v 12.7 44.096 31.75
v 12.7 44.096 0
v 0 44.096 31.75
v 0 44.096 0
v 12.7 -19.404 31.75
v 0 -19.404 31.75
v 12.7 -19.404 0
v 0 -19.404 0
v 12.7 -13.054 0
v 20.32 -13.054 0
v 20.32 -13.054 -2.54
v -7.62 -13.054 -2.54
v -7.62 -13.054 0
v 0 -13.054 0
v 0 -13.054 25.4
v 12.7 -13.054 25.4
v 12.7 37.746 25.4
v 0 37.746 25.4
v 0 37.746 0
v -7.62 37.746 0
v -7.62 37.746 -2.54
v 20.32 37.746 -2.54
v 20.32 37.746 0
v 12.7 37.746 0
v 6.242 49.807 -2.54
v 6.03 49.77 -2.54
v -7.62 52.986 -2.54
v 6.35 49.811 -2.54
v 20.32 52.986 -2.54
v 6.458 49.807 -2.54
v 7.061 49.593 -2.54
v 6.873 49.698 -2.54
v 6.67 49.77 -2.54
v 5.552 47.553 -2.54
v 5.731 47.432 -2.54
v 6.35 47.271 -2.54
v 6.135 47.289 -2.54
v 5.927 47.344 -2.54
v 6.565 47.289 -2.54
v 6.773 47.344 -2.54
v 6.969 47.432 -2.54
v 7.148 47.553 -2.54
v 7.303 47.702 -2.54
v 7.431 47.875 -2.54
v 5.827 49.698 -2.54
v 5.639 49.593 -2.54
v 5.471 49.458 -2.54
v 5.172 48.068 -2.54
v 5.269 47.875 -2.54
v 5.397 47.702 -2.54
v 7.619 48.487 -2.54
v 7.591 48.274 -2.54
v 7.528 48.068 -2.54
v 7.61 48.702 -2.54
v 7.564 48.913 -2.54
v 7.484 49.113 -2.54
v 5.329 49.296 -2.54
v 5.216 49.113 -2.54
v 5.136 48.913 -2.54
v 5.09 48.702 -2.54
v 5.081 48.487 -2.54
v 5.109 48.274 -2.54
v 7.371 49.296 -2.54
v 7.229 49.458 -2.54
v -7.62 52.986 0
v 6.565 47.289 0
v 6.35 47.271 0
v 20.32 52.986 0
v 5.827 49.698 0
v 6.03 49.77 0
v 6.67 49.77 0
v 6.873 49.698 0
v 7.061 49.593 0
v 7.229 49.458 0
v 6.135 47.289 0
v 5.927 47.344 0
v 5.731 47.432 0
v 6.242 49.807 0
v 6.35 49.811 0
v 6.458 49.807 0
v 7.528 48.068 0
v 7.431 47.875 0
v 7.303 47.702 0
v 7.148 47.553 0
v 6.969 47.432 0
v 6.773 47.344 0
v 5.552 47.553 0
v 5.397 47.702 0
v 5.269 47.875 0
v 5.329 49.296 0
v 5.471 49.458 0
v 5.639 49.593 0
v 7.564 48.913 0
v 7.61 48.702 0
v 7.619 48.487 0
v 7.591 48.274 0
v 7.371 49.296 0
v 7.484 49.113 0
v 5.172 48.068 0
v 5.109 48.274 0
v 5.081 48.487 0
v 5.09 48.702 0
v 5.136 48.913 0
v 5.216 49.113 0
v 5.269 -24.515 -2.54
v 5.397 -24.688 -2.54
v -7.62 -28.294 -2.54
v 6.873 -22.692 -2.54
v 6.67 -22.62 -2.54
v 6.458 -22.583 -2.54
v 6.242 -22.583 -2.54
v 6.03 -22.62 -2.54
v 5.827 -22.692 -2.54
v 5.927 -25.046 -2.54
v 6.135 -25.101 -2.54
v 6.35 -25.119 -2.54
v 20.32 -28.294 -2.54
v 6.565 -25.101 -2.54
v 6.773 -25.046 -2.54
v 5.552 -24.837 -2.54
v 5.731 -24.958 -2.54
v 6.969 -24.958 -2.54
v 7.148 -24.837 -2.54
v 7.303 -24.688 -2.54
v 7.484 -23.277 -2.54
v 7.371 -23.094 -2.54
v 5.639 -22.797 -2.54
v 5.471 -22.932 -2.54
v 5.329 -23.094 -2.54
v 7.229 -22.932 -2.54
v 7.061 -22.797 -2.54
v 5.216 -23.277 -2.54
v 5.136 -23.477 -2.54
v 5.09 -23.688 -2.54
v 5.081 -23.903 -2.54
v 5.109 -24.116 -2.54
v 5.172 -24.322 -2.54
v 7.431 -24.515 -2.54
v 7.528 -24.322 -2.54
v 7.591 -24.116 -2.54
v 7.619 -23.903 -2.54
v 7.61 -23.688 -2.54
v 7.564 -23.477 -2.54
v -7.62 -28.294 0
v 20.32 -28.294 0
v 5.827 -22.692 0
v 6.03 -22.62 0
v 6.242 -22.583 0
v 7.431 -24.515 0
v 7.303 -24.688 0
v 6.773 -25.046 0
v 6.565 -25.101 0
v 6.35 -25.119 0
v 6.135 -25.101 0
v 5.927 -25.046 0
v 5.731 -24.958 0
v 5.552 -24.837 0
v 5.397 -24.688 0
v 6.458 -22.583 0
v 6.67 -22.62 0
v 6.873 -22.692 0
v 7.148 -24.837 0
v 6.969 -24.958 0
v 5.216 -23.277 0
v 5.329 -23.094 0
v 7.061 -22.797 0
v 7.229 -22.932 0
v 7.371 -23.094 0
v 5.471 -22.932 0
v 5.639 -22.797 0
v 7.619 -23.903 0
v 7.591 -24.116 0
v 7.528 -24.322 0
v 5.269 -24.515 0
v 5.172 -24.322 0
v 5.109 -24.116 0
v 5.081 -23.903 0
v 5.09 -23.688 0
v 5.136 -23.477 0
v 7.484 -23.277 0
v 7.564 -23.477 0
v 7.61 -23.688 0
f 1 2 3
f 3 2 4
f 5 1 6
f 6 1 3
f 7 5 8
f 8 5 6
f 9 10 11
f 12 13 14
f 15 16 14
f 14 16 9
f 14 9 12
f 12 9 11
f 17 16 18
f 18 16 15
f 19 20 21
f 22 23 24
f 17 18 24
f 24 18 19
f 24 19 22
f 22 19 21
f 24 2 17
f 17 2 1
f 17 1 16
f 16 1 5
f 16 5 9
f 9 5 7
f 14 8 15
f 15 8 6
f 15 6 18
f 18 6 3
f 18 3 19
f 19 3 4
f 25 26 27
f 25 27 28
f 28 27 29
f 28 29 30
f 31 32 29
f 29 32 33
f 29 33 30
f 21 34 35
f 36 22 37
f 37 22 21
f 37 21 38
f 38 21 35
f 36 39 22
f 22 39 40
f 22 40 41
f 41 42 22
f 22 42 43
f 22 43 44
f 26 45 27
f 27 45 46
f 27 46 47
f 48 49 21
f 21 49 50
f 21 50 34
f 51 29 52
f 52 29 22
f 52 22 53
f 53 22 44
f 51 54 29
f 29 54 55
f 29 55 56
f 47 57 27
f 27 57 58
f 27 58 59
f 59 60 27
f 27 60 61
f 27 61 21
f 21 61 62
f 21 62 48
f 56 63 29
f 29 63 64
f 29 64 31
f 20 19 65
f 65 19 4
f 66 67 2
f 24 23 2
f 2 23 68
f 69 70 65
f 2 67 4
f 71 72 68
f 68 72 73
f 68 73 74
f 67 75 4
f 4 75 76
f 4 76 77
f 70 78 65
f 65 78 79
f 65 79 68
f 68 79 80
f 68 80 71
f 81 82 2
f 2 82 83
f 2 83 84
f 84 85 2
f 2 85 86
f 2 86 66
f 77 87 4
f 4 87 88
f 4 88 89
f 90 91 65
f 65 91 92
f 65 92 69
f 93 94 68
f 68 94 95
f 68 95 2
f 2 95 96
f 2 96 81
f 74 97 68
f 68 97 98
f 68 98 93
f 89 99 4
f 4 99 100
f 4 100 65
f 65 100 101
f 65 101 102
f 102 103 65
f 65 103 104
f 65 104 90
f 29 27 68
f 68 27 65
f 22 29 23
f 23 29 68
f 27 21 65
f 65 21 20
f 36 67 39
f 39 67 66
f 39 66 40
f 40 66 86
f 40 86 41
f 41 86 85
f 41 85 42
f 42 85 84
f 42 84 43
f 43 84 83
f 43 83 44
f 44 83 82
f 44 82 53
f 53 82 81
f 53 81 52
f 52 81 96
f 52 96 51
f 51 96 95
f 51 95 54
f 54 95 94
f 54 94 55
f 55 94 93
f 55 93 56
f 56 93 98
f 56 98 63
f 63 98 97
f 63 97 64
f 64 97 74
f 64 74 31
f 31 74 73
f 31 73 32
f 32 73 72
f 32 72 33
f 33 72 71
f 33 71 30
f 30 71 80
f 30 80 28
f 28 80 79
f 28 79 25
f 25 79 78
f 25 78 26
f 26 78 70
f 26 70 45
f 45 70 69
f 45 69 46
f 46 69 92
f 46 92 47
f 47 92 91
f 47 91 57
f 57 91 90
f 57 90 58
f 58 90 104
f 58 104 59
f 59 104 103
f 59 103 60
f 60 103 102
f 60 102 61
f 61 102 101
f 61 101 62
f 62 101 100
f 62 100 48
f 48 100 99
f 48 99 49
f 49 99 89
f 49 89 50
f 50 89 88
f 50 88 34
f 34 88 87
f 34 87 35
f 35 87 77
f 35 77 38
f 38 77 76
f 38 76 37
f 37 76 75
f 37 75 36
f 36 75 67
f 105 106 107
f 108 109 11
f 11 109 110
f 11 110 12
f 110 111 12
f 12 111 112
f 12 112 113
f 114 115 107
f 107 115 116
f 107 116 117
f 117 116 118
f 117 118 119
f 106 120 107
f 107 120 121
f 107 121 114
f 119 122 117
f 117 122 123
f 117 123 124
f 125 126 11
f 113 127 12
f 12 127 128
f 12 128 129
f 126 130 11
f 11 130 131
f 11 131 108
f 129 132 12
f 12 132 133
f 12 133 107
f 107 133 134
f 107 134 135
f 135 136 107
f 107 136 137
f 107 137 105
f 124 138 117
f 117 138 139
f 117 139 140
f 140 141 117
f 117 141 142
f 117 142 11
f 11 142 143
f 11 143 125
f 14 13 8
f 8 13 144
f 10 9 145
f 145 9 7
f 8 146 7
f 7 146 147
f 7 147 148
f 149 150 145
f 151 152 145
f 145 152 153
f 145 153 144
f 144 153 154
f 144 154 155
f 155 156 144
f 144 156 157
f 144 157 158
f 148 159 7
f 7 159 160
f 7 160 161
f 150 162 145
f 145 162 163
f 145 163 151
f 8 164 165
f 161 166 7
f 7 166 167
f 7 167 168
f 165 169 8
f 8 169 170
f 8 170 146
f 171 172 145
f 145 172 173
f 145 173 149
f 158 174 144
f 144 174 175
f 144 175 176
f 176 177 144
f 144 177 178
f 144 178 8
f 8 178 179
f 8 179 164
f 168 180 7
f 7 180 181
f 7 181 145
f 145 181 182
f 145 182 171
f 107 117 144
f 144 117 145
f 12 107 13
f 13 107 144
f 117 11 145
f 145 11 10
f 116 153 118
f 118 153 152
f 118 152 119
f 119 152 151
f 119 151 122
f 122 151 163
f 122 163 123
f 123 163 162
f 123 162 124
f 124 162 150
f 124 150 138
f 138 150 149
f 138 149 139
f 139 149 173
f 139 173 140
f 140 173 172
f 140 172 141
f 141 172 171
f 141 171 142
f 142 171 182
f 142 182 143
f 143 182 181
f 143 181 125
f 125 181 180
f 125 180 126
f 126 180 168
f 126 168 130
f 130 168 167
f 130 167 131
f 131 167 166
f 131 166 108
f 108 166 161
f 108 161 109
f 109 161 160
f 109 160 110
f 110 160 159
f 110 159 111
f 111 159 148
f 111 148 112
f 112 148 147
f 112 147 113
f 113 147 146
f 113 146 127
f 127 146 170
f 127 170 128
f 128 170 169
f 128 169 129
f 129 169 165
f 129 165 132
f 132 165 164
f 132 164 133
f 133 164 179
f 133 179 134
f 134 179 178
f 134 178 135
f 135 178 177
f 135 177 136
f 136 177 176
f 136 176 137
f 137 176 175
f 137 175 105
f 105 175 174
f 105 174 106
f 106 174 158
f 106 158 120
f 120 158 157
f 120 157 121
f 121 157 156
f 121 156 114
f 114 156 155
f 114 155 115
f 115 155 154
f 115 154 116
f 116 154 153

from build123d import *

# Parameters (mm, degrees)
BOSS_EXTRUDE1_DEPTH = 12.7
SKETCH3_W           = 27.94
SKETCH3_H           = 15.24
SKETCH3_R           = 1.27
BOSS_EXTRUDE2_DEPTH = 2.54


with BuildPart() as part:
    # Sketch2 → Boss-Extrude1 (new body)
    with BuildSketch(Plane(origin=(0, 0, 0), x_dir=(0, 0, -1), z_dir=(1, 0, 0))):
        Polygon((0, 44.0961272), (-31.75, 44.0961272), (-31.75, -19.4038728), (0, -19.4038728), (0, -13.0538728), (-25.4, -13.0538728), (-25.4, 37.7461272), (0, 37.7461272), align=None)
    extrude(amount=BOSS_EXTRUDE1_DEPTH)

    # Sketch3 → Boss-Extrude2 (add)
    with BuildSketch(Plane(origin=(0, 0, 0), x_dir=(-1, 0, 0), z_dir=(0, 0, -1))):
        with Locations((-6.35, 45.3661272)):
            Rectangle(SKETCH3_W, SKETCH3_H)
        with Locations((-6.35, 48.5411272)):
            Circle(SKETCH3_R, mode=Mode.SUBTRACT)
        with Locations((-6.35, -20.6738728)):
            Rectangle(SKETCH3_W, SKETCH3_H)
        with Locations((-6.35, -23.8488728)):
            Circle(SKETCH3_R, mode=Mode.SUBTRACT)
    extrude(amount=BOSS_EXTRUDE2_DEPTH)


solid = part.part
